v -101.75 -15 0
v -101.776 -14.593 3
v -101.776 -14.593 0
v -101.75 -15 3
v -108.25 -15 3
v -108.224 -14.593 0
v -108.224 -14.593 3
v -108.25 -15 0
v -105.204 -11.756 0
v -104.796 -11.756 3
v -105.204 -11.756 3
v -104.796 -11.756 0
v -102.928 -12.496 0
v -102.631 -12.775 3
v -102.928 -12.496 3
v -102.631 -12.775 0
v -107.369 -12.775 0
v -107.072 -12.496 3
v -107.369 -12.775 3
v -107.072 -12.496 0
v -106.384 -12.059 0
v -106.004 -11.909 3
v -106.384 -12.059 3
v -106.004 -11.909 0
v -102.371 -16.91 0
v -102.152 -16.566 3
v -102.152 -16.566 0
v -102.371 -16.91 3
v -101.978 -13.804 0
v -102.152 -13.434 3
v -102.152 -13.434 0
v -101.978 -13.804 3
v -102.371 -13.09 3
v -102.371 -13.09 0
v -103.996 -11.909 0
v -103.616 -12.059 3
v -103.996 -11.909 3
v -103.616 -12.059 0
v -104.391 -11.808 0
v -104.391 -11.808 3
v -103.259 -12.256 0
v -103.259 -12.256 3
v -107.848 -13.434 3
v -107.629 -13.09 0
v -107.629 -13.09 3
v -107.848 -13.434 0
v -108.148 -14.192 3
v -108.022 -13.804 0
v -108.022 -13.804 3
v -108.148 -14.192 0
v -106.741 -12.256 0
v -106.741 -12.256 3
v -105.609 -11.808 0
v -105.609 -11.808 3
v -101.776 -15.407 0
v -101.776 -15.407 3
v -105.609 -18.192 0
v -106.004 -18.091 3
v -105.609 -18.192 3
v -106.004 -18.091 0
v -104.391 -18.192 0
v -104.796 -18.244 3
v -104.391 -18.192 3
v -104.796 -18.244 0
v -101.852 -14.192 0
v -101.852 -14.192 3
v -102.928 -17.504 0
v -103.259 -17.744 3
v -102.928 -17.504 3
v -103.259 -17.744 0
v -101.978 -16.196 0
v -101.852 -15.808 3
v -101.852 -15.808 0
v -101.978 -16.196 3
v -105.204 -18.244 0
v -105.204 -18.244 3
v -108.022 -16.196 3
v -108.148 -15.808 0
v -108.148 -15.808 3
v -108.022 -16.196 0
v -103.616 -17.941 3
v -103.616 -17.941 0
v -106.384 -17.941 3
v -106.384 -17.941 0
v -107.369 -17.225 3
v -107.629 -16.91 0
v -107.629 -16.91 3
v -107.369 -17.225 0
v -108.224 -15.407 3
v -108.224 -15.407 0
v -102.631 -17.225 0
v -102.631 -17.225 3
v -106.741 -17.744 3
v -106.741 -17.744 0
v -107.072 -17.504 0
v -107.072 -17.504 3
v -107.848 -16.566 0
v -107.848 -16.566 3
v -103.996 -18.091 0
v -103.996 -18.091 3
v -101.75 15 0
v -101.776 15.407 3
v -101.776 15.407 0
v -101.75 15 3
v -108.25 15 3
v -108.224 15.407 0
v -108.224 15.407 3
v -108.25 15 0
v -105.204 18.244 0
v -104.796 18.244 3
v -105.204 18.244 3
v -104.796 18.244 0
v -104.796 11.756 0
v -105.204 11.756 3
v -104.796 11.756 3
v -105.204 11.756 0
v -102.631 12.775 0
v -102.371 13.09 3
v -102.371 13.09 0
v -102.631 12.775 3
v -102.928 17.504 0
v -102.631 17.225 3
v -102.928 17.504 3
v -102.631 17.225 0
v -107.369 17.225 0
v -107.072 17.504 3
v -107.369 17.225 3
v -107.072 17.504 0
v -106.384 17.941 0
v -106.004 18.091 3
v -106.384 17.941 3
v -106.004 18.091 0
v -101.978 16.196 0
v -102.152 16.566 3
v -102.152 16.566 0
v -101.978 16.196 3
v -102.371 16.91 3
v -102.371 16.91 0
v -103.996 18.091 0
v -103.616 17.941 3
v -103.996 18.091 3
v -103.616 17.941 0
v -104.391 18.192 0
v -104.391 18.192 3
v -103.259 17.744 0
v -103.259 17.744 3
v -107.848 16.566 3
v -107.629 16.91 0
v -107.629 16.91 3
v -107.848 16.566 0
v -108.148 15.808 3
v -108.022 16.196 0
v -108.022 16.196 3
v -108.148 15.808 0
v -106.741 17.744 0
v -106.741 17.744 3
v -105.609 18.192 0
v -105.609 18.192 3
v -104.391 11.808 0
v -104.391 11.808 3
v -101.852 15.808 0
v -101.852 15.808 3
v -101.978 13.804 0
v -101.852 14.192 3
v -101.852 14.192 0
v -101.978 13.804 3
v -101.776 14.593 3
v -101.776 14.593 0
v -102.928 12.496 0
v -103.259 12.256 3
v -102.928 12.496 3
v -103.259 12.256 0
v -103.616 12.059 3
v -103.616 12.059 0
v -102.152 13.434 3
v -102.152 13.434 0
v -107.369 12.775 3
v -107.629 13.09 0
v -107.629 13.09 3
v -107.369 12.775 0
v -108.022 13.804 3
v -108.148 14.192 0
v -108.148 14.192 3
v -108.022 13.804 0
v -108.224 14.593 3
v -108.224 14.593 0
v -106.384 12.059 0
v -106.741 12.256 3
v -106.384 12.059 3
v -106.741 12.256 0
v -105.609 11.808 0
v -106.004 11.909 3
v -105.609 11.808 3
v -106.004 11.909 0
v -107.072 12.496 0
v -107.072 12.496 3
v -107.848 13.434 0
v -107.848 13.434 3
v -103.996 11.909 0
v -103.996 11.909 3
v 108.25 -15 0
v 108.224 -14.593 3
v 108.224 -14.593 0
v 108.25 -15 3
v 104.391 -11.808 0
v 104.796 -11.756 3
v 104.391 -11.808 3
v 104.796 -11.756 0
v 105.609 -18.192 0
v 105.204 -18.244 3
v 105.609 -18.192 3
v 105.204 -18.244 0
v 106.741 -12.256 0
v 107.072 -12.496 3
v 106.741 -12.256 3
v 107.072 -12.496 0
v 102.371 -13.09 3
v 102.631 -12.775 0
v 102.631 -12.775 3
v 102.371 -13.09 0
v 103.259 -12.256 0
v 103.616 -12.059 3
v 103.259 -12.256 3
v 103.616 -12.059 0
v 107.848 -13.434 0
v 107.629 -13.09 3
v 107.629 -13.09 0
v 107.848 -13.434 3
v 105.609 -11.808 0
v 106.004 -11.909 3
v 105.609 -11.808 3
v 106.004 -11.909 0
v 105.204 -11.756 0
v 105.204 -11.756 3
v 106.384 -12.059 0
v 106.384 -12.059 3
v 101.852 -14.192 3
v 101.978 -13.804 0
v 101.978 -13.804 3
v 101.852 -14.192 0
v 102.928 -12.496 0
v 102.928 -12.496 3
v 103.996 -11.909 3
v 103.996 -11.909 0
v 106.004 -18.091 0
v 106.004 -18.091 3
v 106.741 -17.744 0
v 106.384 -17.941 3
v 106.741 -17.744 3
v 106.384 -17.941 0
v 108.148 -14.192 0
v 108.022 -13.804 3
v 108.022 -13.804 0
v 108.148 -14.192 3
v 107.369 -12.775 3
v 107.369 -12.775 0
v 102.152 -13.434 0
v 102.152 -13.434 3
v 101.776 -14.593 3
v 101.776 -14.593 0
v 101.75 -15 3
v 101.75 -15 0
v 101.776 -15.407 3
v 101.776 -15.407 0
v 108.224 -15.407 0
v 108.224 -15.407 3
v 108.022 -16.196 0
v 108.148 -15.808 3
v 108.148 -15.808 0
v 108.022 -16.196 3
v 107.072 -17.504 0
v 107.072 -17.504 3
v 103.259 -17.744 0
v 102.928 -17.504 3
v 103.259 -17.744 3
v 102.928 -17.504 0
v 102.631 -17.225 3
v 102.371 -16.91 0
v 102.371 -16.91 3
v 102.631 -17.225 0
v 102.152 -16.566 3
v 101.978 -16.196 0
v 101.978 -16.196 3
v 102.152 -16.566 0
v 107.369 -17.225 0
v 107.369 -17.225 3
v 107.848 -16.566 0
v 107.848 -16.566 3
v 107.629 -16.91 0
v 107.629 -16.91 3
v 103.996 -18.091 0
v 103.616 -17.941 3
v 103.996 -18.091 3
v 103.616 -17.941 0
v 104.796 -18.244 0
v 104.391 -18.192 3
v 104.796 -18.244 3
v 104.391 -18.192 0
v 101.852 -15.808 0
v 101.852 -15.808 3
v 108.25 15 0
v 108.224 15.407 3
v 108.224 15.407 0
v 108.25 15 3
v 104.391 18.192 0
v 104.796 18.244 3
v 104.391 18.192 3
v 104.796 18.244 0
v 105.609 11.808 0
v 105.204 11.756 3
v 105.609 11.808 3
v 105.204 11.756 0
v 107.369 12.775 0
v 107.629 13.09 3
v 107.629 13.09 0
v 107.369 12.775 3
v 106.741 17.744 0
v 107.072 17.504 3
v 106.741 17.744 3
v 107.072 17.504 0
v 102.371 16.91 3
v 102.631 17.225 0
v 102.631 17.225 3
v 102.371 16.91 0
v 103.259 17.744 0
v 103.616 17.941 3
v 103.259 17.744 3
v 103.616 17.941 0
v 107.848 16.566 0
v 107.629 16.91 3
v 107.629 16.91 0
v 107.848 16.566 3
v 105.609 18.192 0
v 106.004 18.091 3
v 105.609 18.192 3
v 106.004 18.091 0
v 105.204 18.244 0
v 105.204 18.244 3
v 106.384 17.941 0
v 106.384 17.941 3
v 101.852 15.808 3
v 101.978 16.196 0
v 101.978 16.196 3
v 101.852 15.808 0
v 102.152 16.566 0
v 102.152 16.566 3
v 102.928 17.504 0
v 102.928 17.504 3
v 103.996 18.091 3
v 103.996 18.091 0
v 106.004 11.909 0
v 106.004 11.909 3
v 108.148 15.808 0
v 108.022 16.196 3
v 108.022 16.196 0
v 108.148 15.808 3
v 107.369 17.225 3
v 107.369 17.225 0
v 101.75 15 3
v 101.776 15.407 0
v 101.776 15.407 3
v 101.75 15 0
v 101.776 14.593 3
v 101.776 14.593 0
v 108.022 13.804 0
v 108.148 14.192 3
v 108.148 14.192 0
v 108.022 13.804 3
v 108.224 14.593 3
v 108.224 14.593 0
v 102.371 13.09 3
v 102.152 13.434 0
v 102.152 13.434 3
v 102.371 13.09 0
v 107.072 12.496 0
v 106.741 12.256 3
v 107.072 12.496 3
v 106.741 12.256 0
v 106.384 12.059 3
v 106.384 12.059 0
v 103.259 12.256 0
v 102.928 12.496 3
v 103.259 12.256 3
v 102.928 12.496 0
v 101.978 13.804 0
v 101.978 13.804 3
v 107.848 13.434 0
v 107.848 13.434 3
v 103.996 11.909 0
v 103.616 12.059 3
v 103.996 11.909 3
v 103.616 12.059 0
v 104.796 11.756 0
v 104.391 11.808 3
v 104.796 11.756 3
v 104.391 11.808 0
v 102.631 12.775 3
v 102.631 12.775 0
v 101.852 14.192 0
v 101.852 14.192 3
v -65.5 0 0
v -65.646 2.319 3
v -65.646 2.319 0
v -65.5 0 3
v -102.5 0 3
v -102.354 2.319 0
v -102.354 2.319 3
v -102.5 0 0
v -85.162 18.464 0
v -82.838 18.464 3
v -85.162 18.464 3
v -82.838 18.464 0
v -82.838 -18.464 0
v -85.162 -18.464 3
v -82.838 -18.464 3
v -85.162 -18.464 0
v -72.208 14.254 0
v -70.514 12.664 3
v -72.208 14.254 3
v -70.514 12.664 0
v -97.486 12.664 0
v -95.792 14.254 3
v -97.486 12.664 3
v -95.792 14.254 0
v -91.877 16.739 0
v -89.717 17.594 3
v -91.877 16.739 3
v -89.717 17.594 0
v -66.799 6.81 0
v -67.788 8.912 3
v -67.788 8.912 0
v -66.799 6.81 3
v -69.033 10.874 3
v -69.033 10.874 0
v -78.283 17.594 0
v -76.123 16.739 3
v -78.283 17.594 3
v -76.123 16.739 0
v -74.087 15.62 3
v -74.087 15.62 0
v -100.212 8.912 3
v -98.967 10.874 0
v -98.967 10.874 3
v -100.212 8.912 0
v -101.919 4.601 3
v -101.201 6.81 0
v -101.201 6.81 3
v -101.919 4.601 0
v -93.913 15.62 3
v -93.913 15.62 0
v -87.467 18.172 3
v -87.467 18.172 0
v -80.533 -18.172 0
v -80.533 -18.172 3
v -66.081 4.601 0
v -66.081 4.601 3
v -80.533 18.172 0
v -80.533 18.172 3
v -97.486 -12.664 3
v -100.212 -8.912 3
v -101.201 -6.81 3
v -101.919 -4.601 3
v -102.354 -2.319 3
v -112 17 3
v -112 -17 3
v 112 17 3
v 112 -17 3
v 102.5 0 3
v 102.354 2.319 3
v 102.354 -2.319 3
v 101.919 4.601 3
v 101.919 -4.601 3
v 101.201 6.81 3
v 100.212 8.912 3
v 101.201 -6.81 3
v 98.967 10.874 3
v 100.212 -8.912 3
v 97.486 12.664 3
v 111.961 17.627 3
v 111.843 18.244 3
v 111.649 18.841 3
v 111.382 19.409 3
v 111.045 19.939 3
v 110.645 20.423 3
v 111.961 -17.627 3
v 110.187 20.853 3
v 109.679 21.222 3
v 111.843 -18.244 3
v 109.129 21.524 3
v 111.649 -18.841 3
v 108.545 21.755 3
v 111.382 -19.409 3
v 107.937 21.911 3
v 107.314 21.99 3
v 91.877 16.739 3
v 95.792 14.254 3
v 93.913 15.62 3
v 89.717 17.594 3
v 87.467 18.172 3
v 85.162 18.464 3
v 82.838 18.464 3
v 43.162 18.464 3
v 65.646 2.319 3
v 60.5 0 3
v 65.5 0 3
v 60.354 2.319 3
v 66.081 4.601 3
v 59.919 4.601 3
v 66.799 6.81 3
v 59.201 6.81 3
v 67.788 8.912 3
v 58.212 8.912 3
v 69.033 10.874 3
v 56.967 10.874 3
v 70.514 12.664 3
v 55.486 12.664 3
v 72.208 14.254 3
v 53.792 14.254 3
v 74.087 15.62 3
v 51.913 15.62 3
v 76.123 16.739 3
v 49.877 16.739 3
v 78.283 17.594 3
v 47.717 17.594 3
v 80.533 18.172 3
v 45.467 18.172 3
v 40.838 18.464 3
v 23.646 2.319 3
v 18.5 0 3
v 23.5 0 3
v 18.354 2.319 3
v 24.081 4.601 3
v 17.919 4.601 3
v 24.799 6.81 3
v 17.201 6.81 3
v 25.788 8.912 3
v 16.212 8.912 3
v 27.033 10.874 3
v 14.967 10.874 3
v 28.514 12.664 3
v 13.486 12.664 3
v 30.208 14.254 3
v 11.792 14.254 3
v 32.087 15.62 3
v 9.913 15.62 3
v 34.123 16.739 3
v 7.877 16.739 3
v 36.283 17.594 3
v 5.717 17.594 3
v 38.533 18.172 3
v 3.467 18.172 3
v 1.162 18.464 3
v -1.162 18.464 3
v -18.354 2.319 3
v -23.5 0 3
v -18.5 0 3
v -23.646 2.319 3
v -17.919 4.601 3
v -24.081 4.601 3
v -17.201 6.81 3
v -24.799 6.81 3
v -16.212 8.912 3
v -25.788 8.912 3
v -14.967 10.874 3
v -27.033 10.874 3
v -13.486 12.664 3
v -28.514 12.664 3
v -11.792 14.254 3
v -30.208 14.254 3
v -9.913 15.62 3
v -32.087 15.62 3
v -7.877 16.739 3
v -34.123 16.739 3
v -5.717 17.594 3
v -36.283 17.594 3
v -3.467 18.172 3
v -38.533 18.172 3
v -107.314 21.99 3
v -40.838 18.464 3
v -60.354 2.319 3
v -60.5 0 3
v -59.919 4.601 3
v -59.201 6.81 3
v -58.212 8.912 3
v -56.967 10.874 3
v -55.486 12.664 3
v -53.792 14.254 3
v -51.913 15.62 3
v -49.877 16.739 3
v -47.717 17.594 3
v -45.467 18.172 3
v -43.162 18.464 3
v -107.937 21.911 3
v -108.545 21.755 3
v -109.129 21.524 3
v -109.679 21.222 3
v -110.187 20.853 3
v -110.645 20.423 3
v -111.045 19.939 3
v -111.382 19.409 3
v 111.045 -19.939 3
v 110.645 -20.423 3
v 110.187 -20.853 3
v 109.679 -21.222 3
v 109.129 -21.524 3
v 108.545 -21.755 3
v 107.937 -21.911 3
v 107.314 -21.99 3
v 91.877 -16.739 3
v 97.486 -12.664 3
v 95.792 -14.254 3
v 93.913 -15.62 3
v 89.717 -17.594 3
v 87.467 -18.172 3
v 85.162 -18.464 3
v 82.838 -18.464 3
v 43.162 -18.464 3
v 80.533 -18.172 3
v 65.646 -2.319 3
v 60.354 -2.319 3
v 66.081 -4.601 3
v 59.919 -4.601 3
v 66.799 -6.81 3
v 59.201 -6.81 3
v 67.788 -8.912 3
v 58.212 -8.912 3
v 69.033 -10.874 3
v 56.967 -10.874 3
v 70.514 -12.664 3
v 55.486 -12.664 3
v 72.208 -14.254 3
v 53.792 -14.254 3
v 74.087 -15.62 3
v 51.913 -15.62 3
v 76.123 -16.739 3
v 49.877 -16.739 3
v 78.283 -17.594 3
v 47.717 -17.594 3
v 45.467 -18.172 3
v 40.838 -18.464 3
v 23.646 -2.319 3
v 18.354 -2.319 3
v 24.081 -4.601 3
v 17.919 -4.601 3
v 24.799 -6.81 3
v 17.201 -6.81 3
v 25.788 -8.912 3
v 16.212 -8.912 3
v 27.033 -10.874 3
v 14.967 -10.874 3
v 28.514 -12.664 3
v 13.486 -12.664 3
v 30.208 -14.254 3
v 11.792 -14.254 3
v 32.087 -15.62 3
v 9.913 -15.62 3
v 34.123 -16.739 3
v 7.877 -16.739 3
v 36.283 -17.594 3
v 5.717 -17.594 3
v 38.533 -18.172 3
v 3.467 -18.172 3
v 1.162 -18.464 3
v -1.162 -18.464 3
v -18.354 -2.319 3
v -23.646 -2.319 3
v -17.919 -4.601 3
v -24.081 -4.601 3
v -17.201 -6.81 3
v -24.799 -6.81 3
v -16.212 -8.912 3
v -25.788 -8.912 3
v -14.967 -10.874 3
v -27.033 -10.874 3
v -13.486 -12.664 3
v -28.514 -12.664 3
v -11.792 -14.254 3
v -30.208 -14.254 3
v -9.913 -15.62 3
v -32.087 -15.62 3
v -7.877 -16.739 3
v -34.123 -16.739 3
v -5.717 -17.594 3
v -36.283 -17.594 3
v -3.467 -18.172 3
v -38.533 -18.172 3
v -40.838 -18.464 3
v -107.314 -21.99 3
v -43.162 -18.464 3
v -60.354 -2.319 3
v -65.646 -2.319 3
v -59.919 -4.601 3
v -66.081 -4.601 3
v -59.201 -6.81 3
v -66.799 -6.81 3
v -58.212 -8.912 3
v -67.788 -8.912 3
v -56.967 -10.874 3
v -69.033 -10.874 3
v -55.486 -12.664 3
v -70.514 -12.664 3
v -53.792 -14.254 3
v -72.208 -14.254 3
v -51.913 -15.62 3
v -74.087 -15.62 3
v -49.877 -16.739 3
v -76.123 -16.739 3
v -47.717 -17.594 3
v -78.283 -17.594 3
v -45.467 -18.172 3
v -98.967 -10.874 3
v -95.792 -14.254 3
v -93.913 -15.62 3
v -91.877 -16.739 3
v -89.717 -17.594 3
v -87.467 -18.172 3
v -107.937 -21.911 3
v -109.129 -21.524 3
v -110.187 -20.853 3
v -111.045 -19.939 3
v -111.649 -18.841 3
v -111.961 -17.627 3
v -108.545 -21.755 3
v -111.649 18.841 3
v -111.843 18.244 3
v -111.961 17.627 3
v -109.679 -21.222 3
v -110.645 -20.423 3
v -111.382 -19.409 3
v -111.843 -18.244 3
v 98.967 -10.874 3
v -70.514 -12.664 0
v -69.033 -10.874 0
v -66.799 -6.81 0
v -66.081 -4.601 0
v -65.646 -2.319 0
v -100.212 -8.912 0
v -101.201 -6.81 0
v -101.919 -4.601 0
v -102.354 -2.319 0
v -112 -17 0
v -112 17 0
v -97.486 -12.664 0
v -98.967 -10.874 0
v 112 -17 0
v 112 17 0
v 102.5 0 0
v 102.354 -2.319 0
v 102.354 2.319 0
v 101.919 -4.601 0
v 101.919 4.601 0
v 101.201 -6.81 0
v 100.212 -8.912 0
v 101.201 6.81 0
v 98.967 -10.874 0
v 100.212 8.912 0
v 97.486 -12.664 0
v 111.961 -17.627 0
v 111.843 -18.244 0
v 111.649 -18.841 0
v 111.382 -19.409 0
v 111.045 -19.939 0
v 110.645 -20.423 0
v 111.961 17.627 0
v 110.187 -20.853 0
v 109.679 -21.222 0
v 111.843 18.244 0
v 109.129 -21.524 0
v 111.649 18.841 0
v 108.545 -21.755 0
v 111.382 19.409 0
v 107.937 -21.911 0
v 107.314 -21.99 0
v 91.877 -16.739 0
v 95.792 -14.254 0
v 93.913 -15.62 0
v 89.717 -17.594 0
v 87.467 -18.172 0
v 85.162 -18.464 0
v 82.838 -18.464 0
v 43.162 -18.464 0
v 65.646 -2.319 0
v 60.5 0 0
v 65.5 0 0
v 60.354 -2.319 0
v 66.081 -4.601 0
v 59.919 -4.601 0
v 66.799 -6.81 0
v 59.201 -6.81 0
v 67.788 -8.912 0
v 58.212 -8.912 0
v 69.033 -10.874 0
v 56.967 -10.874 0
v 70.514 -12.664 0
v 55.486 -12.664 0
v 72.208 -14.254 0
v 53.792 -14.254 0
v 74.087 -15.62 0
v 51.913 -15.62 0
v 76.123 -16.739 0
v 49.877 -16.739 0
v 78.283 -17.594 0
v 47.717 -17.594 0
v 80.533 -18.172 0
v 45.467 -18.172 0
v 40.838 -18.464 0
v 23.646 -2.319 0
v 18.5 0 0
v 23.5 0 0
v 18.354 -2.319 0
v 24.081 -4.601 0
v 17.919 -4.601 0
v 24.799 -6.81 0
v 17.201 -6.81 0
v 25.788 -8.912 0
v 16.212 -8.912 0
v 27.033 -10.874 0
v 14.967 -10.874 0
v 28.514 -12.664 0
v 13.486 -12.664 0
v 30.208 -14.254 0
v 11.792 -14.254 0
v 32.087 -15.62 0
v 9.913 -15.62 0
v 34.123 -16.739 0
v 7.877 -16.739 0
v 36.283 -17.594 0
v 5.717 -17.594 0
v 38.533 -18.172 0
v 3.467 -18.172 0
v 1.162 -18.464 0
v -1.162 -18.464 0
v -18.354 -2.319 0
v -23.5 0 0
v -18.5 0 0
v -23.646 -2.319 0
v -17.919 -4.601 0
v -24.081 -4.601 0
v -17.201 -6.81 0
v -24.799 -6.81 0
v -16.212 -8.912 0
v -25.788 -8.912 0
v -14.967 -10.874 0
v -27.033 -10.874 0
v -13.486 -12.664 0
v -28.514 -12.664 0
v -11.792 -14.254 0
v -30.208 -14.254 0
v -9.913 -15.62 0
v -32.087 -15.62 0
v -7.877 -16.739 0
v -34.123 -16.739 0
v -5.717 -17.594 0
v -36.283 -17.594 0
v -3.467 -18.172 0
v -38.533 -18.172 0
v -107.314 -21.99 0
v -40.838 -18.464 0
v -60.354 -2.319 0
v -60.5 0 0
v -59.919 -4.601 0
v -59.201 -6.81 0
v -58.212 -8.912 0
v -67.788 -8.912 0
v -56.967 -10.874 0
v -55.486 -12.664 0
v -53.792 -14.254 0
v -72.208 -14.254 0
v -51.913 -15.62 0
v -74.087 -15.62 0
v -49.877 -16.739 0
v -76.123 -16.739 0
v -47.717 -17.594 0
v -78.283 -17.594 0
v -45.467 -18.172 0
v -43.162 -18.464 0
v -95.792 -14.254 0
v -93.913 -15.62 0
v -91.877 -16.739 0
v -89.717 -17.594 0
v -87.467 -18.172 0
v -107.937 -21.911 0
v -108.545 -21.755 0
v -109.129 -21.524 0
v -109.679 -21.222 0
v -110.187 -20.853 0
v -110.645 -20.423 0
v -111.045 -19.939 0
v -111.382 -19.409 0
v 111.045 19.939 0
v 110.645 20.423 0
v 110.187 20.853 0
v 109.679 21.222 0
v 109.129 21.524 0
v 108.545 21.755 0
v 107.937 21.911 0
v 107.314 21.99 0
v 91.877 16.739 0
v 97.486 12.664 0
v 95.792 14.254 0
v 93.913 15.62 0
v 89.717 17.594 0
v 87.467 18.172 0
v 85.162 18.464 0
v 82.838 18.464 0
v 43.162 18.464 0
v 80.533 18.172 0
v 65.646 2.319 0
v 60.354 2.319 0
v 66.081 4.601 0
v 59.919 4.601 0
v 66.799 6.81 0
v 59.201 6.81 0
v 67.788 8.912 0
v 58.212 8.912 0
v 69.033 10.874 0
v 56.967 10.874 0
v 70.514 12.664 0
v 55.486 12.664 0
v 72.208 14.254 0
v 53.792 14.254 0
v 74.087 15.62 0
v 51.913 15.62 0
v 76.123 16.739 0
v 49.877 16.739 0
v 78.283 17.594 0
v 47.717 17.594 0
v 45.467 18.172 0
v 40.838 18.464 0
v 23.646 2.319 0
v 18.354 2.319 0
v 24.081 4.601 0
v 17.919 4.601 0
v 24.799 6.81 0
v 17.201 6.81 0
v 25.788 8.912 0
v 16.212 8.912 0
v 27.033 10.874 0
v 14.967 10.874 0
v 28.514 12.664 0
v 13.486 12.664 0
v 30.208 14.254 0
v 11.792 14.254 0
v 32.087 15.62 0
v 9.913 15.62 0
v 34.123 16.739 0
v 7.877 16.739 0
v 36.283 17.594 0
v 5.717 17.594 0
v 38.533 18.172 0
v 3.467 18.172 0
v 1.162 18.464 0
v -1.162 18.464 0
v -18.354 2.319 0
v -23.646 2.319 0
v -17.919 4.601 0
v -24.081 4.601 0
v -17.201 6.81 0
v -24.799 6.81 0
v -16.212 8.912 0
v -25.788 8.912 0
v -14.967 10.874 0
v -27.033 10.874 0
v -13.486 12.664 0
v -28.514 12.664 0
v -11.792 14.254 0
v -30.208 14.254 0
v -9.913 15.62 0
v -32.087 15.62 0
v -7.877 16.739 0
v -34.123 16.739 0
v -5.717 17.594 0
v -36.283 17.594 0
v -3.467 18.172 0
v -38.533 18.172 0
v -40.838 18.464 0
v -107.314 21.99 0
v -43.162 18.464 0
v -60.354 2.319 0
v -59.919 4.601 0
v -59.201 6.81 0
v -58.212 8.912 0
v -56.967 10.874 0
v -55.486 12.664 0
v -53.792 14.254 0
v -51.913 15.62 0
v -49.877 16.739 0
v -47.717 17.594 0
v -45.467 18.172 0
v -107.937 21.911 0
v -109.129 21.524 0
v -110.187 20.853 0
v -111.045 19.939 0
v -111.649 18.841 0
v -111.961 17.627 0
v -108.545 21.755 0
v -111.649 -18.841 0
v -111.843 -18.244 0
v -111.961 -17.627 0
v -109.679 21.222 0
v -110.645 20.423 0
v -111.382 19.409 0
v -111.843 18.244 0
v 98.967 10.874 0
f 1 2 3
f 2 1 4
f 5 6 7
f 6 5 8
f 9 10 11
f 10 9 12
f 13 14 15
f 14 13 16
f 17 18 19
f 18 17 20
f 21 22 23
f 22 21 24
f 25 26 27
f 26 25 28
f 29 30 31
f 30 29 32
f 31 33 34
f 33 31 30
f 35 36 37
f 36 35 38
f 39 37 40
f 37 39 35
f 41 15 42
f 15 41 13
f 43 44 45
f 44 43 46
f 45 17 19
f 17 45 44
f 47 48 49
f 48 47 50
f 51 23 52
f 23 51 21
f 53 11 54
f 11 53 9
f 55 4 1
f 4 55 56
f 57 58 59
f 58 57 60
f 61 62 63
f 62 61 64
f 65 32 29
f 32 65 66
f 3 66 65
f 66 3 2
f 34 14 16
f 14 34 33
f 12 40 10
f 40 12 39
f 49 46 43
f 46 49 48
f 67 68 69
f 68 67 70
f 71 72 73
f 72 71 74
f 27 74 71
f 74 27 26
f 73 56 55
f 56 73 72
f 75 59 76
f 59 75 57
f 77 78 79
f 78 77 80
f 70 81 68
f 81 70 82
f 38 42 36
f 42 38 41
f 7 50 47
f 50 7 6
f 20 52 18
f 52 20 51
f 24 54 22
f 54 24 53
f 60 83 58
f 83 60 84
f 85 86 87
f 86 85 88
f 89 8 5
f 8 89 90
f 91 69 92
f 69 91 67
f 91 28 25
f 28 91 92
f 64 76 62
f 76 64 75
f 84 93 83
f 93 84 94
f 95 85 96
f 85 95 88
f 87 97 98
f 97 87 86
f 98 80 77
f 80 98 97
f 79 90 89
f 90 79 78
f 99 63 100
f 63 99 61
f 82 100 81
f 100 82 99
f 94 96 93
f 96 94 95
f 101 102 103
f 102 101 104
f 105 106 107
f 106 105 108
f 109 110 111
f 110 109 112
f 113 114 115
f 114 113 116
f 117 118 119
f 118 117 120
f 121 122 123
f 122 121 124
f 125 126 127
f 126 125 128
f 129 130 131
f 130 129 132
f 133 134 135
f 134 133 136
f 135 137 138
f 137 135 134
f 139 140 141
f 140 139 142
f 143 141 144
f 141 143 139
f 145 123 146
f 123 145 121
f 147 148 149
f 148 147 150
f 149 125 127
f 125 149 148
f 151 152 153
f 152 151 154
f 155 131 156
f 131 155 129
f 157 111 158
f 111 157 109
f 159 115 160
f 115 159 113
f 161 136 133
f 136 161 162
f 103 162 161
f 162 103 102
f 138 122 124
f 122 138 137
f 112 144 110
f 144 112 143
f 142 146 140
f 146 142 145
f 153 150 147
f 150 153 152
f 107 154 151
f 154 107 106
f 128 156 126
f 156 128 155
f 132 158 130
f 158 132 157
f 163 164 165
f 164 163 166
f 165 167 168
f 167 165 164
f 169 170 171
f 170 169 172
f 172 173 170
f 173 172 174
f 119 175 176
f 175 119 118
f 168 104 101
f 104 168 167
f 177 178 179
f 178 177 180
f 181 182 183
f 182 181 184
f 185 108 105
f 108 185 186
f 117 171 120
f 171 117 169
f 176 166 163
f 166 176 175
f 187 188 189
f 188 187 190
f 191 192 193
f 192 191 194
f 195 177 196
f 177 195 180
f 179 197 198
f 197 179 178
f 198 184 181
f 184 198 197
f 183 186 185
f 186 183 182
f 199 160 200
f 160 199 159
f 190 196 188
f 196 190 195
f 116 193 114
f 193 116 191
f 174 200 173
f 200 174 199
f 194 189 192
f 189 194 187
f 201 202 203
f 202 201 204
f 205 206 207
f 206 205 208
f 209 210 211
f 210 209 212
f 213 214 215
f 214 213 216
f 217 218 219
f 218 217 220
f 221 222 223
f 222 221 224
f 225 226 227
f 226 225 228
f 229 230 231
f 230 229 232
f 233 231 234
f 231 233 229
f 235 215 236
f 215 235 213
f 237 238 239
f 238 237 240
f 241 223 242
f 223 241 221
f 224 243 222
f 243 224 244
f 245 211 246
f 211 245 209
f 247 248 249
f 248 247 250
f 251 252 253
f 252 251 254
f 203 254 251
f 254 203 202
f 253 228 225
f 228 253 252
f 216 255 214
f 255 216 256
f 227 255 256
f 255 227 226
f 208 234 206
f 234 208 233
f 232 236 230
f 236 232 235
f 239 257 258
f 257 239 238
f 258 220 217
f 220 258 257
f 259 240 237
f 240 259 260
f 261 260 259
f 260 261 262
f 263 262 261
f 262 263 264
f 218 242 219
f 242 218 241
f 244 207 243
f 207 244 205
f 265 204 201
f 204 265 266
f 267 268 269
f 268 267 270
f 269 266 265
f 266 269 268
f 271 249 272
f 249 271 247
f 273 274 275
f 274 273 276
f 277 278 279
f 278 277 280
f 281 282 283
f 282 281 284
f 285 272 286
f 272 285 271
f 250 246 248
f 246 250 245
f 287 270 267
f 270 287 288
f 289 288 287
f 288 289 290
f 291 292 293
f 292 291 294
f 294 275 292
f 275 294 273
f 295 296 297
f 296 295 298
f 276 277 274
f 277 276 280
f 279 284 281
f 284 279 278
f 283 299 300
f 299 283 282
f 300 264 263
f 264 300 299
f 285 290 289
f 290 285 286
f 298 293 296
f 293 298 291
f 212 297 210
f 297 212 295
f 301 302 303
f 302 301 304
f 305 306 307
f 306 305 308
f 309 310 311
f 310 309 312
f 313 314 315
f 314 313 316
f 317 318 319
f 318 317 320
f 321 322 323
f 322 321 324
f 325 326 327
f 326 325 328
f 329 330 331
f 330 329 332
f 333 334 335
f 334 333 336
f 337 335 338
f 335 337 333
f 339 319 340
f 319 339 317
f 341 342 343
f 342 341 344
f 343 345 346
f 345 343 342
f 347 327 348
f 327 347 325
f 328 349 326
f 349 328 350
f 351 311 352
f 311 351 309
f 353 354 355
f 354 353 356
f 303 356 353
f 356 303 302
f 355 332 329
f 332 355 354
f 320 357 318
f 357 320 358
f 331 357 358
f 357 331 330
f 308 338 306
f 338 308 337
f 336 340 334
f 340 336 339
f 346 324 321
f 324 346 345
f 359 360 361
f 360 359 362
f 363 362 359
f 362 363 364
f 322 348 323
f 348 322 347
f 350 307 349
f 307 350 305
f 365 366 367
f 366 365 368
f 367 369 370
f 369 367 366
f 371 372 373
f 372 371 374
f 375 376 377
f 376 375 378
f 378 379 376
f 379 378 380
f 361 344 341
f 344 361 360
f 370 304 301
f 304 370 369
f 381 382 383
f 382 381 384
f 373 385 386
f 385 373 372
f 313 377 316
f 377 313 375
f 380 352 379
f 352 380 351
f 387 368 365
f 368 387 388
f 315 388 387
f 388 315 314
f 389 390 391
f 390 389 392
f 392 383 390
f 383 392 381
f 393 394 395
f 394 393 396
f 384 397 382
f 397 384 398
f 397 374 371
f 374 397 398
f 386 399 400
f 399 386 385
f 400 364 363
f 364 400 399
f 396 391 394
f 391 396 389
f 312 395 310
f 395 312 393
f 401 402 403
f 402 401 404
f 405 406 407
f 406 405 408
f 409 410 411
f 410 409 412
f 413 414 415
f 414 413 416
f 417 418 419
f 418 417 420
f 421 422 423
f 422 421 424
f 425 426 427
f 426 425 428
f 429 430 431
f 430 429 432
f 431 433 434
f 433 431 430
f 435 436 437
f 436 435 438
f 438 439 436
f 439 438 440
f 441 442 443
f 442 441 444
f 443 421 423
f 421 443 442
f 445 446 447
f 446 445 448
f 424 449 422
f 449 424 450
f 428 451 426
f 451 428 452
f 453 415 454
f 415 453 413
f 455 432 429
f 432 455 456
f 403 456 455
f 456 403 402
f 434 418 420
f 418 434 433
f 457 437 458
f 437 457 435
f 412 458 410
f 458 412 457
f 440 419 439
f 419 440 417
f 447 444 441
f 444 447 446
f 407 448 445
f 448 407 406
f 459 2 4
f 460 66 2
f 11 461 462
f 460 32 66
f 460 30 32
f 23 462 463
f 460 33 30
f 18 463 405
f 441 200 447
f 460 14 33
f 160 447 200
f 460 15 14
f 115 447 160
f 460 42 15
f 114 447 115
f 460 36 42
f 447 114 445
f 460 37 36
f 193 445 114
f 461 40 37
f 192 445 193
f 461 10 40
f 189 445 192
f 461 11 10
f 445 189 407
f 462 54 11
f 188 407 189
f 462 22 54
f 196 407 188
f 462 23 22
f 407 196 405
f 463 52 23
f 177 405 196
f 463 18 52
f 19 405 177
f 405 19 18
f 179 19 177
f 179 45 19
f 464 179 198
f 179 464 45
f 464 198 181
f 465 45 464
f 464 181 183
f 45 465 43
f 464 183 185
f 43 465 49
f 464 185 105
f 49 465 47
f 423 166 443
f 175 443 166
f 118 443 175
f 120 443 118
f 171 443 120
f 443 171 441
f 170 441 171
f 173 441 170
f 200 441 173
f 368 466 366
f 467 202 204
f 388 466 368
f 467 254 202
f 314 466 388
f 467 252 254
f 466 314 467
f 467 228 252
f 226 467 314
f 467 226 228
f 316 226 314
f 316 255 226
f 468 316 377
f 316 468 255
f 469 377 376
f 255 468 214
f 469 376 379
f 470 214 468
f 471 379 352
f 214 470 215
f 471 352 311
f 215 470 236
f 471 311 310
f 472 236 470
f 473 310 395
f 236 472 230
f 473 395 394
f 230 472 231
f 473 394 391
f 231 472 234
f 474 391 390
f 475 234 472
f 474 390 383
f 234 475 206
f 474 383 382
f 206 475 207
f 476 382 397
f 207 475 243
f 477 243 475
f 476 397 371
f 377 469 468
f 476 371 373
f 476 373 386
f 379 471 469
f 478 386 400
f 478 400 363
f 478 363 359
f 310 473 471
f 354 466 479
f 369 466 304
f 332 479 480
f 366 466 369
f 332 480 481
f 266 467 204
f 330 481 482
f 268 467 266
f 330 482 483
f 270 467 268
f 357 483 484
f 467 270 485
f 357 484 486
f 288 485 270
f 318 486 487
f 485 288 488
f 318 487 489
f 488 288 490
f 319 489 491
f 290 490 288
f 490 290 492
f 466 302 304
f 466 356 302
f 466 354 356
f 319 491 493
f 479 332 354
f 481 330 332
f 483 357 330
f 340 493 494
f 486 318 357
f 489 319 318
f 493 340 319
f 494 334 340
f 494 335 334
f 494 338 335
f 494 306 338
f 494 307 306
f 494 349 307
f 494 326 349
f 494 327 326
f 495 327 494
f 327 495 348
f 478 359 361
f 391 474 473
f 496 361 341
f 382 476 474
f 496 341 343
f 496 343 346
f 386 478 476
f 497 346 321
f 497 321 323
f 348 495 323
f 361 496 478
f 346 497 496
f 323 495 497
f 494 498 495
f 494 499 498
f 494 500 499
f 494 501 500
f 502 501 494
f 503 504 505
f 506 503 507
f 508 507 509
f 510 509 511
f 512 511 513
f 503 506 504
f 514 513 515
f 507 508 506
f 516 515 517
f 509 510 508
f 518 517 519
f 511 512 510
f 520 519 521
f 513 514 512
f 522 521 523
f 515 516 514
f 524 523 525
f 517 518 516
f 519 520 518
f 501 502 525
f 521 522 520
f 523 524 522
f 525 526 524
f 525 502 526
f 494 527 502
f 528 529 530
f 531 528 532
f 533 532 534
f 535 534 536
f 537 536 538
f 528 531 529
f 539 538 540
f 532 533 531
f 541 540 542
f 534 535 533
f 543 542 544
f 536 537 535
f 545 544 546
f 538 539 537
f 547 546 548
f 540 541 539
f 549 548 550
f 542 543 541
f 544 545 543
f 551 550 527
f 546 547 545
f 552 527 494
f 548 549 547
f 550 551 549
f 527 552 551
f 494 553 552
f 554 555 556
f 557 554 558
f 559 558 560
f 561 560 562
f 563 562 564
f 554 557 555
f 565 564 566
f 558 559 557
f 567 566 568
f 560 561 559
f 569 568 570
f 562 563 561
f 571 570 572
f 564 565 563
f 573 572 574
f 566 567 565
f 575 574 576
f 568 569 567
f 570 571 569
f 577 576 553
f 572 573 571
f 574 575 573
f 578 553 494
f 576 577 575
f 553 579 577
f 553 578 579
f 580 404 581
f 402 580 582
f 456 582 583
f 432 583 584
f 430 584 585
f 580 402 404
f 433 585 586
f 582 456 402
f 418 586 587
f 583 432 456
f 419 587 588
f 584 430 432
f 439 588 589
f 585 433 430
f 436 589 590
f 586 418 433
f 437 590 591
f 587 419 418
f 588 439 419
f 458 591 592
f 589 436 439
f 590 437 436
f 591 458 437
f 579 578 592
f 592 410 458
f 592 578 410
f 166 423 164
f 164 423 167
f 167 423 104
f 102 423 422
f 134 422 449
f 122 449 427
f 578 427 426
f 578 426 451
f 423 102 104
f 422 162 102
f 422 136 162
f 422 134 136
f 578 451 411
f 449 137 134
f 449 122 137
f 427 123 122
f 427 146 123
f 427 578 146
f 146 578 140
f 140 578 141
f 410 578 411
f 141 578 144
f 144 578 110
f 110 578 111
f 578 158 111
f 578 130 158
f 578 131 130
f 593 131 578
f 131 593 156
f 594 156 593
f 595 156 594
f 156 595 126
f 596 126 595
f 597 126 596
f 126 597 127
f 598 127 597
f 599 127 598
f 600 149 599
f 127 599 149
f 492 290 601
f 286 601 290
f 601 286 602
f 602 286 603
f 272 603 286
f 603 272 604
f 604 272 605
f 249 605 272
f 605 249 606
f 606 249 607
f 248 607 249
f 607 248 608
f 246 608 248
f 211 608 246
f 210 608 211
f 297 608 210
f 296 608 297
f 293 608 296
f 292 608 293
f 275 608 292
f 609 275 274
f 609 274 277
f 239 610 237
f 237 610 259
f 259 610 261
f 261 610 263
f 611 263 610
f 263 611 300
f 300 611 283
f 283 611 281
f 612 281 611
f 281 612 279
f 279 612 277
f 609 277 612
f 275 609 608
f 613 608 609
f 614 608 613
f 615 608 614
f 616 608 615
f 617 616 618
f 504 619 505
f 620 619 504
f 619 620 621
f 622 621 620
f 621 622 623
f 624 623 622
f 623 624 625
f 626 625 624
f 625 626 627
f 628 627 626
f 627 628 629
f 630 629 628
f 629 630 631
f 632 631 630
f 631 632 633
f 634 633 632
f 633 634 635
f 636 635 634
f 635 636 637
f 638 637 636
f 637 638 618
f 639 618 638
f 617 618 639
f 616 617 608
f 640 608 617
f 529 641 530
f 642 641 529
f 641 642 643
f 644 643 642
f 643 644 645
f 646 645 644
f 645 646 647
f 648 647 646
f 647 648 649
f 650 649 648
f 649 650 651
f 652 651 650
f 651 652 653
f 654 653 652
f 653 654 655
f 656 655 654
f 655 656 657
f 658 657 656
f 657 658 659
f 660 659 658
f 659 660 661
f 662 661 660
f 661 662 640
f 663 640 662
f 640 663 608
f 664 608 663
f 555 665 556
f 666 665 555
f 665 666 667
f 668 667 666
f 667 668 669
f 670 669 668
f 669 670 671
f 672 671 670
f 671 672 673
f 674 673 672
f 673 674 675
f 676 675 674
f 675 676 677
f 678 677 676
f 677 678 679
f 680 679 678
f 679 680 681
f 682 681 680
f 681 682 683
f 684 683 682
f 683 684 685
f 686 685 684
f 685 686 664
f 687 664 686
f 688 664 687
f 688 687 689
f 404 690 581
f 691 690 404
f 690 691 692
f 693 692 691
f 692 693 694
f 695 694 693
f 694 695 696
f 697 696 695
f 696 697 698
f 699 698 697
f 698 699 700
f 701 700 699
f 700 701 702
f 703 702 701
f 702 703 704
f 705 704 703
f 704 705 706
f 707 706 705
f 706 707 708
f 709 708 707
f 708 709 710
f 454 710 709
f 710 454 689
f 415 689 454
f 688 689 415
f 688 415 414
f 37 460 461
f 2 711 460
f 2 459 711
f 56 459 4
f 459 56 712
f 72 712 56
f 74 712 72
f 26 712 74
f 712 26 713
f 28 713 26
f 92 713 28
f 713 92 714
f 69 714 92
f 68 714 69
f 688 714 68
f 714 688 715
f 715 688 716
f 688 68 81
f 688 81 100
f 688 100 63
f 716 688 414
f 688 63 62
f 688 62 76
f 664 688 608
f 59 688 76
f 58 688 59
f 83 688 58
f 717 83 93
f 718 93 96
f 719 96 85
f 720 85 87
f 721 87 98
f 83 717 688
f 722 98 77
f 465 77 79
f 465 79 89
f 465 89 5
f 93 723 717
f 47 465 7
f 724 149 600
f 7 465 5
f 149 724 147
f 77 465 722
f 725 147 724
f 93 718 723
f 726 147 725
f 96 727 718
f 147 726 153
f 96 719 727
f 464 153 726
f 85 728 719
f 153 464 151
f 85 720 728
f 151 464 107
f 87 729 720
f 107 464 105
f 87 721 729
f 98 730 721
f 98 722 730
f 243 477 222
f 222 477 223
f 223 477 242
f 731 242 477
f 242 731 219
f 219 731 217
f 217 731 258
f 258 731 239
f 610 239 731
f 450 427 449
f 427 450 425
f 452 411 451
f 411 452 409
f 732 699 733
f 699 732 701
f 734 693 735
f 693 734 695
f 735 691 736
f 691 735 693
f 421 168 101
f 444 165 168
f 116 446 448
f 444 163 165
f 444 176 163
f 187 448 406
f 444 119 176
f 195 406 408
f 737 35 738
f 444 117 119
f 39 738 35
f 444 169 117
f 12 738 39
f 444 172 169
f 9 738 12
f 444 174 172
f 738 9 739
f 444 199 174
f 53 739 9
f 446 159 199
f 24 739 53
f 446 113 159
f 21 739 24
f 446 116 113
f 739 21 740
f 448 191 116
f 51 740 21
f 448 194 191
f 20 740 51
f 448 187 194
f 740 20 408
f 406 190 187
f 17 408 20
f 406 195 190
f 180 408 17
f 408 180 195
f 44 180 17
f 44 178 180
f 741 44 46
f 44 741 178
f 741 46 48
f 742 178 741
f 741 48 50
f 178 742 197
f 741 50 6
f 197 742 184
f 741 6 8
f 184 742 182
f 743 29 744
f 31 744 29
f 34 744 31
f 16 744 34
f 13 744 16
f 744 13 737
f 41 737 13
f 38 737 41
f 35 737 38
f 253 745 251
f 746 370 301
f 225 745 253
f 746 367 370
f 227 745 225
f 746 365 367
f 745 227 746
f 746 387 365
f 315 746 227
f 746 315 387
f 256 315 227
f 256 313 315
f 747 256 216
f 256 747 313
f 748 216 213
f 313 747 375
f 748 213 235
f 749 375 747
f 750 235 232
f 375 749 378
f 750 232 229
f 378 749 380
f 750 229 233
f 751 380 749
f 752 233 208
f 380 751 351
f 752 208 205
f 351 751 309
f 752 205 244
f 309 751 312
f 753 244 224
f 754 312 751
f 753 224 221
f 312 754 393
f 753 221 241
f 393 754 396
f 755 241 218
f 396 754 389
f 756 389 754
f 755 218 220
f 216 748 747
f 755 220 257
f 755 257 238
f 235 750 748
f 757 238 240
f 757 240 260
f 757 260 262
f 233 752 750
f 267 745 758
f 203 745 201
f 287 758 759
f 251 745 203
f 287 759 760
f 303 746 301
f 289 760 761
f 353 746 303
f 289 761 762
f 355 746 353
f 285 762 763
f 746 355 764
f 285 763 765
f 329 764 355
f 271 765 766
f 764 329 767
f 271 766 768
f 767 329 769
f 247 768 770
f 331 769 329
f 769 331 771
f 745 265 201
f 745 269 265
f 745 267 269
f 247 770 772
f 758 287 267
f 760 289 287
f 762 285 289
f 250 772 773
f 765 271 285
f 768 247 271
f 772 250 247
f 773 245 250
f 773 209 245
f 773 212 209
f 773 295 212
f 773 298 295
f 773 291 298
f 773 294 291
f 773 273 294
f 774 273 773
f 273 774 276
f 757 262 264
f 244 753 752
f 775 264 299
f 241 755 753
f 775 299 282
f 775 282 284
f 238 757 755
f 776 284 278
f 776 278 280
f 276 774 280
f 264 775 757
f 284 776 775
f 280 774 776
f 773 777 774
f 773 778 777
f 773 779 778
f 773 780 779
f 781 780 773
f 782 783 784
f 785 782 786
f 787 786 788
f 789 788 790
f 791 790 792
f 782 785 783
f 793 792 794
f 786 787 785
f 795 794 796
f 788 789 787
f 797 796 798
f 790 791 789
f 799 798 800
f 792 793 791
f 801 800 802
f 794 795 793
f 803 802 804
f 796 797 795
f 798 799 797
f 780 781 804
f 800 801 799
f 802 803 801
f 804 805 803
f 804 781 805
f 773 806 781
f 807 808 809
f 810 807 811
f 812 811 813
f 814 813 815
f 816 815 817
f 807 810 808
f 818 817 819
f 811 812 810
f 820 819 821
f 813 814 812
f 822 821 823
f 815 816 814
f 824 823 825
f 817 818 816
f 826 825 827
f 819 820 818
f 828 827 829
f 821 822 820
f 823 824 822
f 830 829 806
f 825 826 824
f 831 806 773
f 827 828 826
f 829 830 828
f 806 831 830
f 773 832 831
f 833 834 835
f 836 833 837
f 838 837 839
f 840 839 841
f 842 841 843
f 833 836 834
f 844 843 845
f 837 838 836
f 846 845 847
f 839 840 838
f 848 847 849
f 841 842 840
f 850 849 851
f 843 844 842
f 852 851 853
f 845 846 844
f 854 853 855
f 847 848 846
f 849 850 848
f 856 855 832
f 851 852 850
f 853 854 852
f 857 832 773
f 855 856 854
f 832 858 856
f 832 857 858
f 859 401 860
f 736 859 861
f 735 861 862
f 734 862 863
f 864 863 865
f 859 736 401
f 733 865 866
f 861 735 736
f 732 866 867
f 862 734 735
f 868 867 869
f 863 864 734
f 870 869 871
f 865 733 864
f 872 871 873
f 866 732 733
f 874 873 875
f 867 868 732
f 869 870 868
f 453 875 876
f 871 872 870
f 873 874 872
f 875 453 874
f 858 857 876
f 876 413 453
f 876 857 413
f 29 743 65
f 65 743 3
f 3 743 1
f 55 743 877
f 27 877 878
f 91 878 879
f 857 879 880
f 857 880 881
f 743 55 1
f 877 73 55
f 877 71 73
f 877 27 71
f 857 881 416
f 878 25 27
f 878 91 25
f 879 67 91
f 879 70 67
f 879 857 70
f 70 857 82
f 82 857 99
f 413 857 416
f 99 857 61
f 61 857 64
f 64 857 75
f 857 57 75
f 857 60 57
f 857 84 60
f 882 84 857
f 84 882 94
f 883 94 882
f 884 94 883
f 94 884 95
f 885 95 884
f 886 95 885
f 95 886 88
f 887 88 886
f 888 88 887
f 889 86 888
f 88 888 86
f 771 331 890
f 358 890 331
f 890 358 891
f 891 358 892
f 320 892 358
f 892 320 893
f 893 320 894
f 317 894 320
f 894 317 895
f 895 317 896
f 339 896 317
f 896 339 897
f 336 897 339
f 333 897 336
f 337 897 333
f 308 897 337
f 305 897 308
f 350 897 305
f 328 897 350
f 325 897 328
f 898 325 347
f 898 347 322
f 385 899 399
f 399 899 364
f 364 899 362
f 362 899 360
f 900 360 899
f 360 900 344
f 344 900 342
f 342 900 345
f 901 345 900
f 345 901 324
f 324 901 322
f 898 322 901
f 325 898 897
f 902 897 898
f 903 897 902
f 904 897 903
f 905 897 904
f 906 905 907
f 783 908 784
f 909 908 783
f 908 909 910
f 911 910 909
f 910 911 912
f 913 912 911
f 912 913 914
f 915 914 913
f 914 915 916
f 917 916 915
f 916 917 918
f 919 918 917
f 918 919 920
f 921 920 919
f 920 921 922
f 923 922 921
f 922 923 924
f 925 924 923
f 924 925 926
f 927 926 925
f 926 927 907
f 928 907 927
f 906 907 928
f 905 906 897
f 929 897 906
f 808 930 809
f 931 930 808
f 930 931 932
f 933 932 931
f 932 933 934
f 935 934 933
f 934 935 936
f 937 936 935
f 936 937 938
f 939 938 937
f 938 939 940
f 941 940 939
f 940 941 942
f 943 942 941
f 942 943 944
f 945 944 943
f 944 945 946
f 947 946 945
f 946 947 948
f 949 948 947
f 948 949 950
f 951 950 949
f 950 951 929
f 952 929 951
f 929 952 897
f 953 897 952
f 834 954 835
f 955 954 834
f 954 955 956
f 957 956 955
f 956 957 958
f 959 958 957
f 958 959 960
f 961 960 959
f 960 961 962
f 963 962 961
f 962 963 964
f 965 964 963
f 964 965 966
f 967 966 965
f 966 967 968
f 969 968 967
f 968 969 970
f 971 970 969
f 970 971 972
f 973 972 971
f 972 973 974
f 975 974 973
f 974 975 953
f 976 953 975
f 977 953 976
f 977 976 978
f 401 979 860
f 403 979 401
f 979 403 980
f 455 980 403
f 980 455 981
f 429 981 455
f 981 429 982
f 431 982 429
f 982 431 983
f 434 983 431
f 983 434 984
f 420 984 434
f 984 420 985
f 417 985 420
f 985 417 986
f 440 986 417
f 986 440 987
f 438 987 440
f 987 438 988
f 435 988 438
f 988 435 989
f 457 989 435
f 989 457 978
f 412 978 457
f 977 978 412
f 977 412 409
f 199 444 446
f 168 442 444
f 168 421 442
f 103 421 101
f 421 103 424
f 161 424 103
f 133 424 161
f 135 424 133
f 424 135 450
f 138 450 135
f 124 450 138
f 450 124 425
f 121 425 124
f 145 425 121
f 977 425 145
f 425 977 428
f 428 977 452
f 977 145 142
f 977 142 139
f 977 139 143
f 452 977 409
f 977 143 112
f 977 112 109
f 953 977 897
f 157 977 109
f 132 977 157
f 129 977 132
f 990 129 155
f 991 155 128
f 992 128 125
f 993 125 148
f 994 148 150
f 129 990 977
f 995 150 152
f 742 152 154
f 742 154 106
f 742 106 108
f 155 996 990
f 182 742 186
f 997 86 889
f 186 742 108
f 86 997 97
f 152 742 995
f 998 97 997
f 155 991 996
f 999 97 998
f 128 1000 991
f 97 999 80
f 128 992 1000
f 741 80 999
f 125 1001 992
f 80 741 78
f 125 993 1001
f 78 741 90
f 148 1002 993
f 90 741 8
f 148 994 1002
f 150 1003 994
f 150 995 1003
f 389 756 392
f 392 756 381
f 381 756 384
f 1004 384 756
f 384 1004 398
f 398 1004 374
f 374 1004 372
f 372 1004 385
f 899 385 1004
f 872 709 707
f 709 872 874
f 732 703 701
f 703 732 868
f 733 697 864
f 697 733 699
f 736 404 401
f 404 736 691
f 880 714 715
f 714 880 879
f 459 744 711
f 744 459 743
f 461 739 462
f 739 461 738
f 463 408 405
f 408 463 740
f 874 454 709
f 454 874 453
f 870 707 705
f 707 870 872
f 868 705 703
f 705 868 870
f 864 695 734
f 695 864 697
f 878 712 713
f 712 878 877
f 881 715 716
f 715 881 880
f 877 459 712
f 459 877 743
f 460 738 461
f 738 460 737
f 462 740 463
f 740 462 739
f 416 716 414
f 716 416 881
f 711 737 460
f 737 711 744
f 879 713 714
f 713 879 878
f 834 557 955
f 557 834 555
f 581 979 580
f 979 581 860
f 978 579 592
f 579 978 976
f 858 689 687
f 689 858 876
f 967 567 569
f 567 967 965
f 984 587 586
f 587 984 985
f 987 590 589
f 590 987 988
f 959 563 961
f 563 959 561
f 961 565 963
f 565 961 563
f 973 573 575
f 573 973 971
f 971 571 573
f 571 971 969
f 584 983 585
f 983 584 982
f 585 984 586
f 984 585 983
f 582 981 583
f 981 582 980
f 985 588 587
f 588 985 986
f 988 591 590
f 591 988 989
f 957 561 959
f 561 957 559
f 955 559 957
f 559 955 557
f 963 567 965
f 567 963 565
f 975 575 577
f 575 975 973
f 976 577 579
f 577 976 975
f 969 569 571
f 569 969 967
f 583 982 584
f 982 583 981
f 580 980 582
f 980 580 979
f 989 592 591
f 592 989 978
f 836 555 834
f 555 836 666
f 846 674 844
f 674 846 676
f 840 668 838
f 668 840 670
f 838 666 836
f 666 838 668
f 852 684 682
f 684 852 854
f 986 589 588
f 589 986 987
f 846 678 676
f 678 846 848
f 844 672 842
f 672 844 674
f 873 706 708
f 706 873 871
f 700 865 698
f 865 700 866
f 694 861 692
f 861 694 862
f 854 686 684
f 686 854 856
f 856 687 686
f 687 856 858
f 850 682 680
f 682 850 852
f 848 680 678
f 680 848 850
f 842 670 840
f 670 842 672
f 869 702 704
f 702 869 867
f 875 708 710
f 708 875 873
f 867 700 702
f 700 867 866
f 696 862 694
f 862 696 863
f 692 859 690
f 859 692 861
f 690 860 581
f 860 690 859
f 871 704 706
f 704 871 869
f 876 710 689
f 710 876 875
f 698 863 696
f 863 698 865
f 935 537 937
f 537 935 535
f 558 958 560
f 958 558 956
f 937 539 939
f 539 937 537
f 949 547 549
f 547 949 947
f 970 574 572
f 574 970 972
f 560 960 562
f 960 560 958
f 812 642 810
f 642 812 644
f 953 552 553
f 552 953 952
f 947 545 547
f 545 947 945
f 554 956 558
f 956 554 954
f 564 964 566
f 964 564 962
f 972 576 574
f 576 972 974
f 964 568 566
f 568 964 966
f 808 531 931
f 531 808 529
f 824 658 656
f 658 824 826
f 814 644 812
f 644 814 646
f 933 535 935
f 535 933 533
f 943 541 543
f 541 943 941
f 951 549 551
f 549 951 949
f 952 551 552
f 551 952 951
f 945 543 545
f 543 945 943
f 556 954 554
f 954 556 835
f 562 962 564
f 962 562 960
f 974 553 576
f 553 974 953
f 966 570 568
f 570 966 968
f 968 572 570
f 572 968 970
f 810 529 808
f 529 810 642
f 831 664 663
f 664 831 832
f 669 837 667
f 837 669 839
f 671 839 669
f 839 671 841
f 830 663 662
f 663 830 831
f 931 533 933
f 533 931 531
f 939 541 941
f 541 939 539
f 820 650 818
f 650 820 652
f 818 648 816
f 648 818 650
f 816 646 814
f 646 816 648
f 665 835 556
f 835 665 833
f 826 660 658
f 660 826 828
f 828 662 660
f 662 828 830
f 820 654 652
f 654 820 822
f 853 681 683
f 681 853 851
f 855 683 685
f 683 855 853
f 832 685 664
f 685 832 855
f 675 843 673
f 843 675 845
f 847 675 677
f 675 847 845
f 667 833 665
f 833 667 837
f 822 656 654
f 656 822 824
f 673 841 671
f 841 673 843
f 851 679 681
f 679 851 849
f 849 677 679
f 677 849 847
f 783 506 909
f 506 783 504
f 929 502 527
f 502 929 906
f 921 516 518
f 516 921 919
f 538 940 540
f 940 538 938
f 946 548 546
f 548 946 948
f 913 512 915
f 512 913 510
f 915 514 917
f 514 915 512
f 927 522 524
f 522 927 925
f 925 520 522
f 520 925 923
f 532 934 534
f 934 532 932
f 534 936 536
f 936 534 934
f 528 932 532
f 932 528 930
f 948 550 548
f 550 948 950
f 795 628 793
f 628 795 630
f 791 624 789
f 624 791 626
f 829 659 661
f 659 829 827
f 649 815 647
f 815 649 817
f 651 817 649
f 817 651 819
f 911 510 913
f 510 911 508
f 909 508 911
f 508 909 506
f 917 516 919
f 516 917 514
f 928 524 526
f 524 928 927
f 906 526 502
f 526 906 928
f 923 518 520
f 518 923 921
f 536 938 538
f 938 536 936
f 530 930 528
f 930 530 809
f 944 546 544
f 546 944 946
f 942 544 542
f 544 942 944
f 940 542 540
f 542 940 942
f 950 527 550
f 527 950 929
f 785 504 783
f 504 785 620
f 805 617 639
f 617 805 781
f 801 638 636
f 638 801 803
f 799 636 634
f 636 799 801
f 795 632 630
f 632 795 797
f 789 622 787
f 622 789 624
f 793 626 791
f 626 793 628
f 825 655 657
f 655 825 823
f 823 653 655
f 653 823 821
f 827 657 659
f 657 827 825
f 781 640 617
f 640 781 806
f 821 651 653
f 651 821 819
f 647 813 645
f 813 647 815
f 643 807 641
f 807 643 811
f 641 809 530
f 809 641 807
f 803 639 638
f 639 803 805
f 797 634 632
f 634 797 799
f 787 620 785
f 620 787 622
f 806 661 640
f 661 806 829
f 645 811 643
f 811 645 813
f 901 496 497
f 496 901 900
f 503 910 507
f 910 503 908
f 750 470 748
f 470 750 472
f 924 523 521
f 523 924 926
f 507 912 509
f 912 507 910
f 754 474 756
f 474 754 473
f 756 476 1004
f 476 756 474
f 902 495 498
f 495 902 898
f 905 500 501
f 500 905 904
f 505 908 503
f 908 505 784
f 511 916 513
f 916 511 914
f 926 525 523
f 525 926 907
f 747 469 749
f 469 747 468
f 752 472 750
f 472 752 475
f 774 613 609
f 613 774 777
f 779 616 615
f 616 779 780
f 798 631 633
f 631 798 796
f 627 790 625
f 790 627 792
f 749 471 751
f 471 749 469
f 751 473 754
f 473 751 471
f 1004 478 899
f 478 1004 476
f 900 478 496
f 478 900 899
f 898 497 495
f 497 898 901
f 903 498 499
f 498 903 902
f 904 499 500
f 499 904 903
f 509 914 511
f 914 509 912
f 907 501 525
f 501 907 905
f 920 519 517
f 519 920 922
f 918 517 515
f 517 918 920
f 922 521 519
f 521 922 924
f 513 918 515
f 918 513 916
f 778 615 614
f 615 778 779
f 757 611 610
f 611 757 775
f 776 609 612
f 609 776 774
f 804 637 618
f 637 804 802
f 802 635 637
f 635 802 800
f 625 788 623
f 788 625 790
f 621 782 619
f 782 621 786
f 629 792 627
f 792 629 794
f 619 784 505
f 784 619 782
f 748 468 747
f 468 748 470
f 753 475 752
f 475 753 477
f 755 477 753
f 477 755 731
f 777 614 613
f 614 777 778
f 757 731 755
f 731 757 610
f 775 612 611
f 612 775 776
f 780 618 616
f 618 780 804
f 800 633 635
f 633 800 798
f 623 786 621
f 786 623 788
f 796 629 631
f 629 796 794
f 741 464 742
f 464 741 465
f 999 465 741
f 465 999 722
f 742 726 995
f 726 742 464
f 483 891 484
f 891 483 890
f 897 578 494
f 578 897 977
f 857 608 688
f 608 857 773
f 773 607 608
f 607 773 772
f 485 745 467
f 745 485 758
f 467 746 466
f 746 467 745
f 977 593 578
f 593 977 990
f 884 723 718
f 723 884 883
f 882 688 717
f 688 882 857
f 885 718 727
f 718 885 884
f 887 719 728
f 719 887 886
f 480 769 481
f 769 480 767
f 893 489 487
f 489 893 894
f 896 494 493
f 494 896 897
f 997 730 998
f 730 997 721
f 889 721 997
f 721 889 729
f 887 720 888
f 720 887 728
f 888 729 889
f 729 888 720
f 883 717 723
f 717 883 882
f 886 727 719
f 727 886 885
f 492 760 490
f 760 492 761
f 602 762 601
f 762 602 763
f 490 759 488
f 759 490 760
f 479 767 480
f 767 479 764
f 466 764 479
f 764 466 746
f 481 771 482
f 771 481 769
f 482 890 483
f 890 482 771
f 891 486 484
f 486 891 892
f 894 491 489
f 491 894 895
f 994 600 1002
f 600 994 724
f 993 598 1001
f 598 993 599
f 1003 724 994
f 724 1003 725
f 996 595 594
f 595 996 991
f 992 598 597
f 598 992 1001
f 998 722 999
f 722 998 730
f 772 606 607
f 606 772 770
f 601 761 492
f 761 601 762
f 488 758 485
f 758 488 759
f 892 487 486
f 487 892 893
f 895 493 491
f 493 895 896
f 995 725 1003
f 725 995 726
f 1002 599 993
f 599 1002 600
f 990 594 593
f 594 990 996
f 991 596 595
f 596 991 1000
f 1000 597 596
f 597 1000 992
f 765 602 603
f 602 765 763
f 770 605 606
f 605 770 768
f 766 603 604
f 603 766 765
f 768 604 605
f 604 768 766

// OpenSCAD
$fn = 50;


difference() {
	union() {
		hull() {
			translate(v = [-107.0000000000, 17.0000000000, 0]) {
				cylinder(h = 3, r = 5);
			}
			translate(v = [107.0000000000, 17.0000000000, 0]) {
				cylinder(h = 3, r = 5);
			}
			translate(v = [-107.0000000000, -17.0000000000, 0]) {
				cylinder(h = 3, r = 5);
			}
			translate(v = [107.0000000000, -17.0000000000, 0]) {
				cylinder(h = 3, r = 5);
			}
		}
	}
	union() {
		#translate(v = [-105.0000000000, -15.0000000000, -100.0000000000]) {
			cylinder(h = 200, r = 3.2500000000);
		}
		#translate(v = [-105.0000000000, 15.0000000000, -100.0000000000]) {
			cylinder(h = 200, r = 3.2500000000);
		}
		#translate(v = [105.0000000000, -15.0000000000, -100.0000000000]) {
			cylinder(h = 200, r = 3.2500000000);
		}
		#translate(v = [105.0000000000, 15.0000000000, -100.0000000000]) {
			cylinder(h = 200, r = 3.2500000000);
		}
		#translate(v = [-84.0000000000, 0, 0]) {
			cylinder(h = 3, r = 18.5000000000);
		}
		#translate(v = [-42.0000000000, 0, 0]) {
			cylinder(h = 3, r = 18.5000000000);
		}
		#cylinder(h = 3, r = 18.5000000000);
		#translate(v = [42.0000000000, 0, 0]) {
			cylinder(h = 3, r = 18.5000000000);
		}
		#translate(v = [84.0000000000, 0, 0]) {
			cylinder(h = 3, r = 18.5000000000);
		}
	}
}
